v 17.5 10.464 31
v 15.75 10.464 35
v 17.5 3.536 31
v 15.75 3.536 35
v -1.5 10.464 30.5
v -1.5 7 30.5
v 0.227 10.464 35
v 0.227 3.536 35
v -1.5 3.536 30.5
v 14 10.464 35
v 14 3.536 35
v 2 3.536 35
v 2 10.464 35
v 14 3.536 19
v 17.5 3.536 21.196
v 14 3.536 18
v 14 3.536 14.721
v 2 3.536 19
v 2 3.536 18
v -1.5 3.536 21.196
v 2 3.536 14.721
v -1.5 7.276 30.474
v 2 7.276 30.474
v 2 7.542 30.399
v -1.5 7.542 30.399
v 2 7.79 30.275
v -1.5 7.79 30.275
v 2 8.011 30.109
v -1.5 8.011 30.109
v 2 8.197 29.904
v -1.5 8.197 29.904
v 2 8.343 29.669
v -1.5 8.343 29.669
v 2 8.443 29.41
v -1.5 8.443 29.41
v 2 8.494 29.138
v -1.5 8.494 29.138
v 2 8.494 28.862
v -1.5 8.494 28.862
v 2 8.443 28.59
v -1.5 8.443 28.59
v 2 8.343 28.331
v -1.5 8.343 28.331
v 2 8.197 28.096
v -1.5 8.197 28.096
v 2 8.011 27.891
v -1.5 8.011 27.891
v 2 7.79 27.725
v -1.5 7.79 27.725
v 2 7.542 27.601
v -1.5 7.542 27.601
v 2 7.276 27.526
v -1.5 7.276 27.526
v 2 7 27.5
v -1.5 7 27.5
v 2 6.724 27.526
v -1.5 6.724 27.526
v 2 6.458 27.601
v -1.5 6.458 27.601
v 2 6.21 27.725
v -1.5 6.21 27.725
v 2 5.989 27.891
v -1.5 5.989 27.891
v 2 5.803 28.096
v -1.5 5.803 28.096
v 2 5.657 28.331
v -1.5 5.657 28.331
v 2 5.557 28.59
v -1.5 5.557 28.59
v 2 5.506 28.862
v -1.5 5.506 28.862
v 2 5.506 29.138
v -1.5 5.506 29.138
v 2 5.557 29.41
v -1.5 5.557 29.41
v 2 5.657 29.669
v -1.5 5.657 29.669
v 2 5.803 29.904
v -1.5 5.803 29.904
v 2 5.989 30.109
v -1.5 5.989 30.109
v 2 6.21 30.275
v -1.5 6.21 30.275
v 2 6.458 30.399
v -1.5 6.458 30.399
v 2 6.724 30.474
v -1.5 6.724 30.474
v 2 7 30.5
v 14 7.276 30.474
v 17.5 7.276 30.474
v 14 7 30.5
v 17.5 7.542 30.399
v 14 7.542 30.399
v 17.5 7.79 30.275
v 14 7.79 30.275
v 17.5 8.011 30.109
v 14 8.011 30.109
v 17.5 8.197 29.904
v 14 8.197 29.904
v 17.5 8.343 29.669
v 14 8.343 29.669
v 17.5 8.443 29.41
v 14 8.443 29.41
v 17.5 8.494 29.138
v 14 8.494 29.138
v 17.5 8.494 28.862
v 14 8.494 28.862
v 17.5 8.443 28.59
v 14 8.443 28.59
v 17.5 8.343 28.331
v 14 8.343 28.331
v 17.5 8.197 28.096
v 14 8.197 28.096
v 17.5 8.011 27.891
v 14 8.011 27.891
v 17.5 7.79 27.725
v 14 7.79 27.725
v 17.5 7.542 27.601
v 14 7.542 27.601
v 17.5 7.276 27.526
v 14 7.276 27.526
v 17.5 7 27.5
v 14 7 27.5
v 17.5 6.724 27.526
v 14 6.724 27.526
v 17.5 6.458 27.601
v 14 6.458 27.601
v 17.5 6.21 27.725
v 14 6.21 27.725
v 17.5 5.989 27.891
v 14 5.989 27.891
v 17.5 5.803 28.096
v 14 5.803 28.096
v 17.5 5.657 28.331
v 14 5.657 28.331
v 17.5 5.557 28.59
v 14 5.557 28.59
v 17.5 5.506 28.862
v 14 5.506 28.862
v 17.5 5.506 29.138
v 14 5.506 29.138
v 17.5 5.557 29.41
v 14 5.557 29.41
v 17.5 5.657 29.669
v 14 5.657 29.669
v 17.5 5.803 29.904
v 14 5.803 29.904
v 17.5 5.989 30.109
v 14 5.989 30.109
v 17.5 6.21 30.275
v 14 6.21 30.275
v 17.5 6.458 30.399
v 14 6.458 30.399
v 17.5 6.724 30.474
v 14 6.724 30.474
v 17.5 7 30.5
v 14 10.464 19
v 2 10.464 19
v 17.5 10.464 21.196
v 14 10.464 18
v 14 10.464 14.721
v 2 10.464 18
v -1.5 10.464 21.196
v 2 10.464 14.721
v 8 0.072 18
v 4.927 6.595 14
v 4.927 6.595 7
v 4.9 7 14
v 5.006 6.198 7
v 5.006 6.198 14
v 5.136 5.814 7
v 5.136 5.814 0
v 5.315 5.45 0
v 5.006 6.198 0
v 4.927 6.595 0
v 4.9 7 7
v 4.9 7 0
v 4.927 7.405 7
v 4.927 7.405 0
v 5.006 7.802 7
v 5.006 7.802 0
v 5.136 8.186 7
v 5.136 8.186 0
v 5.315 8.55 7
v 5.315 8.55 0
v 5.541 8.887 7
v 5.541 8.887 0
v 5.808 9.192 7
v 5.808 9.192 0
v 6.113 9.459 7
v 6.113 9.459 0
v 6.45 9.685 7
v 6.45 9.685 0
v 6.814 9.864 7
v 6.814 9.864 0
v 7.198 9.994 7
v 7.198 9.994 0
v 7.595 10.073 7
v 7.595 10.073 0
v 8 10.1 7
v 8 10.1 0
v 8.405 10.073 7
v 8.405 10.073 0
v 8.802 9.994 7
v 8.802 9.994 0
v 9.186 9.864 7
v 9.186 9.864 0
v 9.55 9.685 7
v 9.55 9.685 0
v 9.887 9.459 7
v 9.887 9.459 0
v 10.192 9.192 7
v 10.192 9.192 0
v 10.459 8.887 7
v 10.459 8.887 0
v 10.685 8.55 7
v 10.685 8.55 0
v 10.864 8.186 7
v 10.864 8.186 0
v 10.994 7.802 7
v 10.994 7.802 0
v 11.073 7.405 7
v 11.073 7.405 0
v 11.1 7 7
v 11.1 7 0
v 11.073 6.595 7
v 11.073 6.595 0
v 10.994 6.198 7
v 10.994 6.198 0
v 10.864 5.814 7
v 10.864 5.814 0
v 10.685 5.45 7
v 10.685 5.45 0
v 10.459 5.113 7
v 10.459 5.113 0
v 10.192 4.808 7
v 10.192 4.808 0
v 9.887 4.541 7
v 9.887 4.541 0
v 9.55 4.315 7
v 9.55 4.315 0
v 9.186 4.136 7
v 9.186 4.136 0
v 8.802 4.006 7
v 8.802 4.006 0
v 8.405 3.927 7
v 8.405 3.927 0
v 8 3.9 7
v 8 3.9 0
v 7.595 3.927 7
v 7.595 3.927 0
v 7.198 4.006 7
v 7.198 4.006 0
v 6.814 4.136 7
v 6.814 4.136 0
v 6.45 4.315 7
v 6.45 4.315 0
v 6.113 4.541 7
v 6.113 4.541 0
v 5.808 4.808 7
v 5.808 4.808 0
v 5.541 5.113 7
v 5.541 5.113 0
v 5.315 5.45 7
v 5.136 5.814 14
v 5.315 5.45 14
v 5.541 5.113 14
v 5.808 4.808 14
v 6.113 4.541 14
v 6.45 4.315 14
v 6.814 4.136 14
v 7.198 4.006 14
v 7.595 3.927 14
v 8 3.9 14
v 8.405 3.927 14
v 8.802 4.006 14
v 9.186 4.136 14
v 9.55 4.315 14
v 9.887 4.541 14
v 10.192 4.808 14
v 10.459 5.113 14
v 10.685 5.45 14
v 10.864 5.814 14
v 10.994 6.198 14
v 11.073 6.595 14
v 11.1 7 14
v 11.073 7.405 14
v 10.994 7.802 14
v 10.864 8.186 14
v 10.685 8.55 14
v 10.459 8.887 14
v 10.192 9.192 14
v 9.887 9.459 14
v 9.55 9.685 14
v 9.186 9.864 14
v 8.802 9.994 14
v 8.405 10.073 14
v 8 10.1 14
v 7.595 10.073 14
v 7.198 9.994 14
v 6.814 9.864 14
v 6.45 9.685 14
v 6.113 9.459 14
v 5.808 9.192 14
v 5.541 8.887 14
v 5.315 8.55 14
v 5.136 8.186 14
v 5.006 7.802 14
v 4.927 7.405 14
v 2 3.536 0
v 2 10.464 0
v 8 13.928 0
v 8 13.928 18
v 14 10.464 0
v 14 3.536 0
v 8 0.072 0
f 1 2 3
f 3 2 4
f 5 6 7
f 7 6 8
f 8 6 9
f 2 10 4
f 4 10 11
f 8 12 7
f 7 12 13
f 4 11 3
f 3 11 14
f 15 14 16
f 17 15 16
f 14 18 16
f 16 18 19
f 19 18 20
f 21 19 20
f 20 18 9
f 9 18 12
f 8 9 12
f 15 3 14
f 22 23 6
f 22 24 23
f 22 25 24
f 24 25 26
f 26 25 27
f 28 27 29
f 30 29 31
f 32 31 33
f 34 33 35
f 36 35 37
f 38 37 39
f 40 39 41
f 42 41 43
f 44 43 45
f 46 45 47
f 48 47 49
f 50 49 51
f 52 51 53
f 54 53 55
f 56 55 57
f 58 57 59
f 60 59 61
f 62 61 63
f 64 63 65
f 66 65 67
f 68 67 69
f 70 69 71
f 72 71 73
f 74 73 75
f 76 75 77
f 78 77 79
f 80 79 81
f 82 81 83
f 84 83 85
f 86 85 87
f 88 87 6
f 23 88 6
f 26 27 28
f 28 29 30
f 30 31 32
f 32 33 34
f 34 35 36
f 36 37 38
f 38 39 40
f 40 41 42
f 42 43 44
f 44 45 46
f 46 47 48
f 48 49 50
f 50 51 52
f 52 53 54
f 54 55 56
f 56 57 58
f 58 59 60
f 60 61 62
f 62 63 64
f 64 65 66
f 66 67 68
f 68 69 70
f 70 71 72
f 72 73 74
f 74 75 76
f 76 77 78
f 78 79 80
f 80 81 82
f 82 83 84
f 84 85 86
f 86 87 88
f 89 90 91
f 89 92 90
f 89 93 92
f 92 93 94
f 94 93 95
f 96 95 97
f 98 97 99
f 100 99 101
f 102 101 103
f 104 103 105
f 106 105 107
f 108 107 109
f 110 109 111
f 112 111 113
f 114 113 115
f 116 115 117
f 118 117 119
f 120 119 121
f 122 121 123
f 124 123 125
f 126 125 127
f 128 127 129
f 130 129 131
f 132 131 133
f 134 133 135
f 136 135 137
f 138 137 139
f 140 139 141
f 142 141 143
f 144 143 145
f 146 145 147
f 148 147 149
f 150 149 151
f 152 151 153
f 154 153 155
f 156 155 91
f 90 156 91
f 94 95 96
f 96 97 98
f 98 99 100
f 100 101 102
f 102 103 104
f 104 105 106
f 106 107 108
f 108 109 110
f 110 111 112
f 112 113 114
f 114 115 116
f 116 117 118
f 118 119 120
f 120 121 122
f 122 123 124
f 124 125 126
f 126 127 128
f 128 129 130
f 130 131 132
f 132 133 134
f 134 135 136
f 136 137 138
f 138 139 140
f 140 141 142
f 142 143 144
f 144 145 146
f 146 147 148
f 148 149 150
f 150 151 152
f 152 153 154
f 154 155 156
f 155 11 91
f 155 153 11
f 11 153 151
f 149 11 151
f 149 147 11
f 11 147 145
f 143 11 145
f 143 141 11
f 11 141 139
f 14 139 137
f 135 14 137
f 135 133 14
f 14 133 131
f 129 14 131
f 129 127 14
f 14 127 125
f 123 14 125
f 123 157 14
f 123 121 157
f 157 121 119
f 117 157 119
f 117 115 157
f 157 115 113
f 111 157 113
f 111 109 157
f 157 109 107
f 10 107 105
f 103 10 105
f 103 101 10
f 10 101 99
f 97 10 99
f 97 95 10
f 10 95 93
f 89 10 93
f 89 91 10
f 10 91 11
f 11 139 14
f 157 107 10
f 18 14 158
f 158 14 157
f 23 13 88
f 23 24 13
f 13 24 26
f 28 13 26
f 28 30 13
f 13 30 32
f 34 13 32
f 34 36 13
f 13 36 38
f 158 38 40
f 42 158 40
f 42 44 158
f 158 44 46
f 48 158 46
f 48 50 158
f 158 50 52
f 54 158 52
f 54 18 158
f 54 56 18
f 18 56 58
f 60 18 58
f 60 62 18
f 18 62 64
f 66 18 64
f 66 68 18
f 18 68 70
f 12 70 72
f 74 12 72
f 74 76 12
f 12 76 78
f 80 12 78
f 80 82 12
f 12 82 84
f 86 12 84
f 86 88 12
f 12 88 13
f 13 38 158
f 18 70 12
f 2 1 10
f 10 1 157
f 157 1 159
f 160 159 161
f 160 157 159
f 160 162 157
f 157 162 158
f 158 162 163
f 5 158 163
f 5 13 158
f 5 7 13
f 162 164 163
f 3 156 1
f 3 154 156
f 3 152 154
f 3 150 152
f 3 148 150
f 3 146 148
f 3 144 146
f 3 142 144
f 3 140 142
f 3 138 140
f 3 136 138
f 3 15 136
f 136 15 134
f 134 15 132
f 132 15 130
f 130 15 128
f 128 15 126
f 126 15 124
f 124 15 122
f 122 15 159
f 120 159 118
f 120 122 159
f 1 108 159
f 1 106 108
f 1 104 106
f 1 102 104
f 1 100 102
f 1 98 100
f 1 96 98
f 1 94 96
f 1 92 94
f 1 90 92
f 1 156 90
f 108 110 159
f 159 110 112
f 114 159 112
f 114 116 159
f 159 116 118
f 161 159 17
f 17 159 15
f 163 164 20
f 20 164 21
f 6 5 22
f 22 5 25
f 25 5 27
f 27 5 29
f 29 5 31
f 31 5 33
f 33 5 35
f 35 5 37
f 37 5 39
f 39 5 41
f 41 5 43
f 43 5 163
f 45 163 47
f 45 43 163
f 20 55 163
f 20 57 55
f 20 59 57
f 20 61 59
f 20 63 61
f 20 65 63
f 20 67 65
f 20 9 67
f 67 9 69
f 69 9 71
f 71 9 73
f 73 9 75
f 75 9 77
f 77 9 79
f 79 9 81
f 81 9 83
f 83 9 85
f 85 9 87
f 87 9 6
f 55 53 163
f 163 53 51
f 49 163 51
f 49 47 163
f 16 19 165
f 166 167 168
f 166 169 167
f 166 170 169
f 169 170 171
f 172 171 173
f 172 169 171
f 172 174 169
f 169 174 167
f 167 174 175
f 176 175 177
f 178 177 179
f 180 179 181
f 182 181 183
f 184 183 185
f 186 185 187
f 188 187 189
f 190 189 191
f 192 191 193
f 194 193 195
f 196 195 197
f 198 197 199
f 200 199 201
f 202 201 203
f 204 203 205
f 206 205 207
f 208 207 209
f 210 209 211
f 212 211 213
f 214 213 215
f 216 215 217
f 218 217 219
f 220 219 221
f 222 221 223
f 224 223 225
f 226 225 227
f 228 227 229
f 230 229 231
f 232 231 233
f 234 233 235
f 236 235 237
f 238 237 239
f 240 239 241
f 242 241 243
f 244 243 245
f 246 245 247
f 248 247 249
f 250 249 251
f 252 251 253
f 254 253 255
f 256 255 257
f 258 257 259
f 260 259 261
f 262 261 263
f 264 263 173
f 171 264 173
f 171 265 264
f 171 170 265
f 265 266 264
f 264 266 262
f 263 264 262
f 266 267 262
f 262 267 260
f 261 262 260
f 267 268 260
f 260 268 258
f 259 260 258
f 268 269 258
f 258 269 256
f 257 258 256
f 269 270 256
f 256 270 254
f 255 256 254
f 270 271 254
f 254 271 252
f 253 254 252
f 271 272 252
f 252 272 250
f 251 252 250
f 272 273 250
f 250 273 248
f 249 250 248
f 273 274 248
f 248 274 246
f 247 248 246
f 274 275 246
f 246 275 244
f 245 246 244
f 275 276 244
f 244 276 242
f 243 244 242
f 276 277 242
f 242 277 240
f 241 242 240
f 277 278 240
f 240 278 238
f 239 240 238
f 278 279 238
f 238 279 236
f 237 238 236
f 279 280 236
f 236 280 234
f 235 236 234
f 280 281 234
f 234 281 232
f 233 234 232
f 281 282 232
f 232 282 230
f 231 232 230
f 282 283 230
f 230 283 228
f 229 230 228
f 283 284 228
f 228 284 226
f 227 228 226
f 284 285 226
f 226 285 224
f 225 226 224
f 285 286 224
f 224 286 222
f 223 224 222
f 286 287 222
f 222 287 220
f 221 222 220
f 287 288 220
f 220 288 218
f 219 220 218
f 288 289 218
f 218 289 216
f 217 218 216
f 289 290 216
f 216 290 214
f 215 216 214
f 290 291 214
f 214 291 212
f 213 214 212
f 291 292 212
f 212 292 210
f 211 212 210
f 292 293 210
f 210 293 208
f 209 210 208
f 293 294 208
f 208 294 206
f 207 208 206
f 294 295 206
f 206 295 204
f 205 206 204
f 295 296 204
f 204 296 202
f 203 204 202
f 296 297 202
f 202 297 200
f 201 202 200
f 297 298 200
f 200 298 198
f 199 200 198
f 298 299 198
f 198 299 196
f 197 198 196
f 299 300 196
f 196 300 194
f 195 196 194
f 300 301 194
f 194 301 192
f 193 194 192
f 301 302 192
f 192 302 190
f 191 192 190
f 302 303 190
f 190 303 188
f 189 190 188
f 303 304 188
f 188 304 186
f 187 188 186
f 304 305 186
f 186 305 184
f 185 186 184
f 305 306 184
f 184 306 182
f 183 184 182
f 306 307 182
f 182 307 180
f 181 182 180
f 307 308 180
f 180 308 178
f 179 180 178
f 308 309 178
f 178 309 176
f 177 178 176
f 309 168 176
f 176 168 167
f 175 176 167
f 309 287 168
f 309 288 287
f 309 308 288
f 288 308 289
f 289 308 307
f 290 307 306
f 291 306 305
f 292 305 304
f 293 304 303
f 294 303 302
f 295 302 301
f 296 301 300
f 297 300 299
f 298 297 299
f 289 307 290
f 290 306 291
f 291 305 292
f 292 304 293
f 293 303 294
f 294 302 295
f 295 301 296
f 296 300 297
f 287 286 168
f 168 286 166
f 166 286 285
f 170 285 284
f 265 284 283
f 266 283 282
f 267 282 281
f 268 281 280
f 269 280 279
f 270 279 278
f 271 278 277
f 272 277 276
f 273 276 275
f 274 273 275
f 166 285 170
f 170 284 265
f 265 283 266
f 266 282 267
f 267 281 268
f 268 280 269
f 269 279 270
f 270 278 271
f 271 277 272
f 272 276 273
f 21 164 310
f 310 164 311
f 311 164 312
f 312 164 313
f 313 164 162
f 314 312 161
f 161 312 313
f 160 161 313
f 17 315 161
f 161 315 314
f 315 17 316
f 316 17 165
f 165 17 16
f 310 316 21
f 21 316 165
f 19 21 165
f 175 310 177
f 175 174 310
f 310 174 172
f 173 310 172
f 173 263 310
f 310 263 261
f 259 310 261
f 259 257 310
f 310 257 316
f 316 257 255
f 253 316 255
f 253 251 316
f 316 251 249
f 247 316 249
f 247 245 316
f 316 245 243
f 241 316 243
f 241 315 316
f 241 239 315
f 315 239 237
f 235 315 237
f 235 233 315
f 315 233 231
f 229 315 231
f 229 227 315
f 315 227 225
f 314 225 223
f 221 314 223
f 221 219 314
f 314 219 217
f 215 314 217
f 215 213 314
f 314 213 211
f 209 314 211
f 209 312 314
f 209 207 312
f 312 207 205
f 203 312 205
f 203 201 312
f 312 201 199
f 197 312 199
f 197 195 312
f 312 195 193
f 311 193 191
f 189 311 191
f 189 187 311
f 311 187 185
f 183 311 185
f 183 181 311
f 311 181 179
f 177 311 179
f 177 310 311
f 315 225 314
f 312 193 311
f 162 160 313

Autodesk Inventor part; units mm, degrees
ref_plane "YZ Plane" through (0, 0, 0) normal (1, 0, 0) x (0, 1, 0)
ref_plane "XZ Plane" through (0, 0, 0) normal (0, 1, 0) x (-1, 0, 0)
ref_plane "XY Plane" through (0, 0, 0) normal (0, 0, 1) x (1, 0, 0)
sketch "Sketch1" plane through (0, 0, 0) normal (0, 0, 1) x (1, 0, 0)
  line L0 (8, 0.0718) -> (2, 3.5359)
  line L1 (2, 3.5359) -> (2, 10.4641)
  line L2 (2, 10.4641) -> (8, 13.9282)
  line L3 (8, 13.9282) -> (14, 10.4641)
  line L4 (14, 10.4641) -> (14, 3.5359)
  line L5 (14, 3.5359) -> (8, 0.0718)
  point P0 (0, 0)
  point P1 (8, 7)
  dimension "d1" = 12
extrude "Extrusion1" add sketch "Sketch1" along normal blind 18
sketch "Sketch2" plane through (0, 0, 0) normal (0, 0, -1) x (-1, 0, 0)
  circle A0 centre (-8, 7) radius 3.1
  point P0 (0, 0)
  dimension "d5" = 6.2
extrude "Extrusion2" cut sketch "Sketch2" against normal blind 14
sketch "Sketch3" plane through (0, 0, 18) normal (0, 0, 1) x (1, 0, 0)
  line L0 (14, 3.5359) -> (8, 0.0718) projected
  line L1 (14, 3.5359) -> (2, 3.5359)
  line L2 (2, 3.5359) -> (2, 10.4641)
  line L3 (2, 10.4641) -> (14, 10.4641)
  line L4 (14, 10.4641) -> (14, 3.5359)
  point P0 (0, 0)
  dimension "d12" = 6.9282
extrude "Extrusion3" add sketch "Sketch3" along normal blind 17
sketch "Sketch4" plane through (2, 10.4641, 18) normal (0, 1, 0) x (1, 0, 0)
  line L0 (12, 0) -> (12, -17) projected
  line L1 (12, -17) -> (15.5, -17)
  line L2 (0, 0) -> (0, -17) projected
  line L3 (12, 0) -> (12, -17)
  line L4 (0, -17) -> (-3.5, -17)
  line L5 (0, 0) -> (0, -17)
  line L6 (15.5, -17) -> (15.5, -3.1957)
  line L7 (-3.5, -3.1957) -> (0, 3.2792)
  line L8 (15.5, -3.1957) -> (12, 3.2792)
  line L9 (12, 18) -> (12, 0) projected
  line L10 (0, 0) -> (0, 3.2792)
  line L11 (12, 0) -> (12, 3)
  line L12 (-3.5, -17) -> (-3.5, -3.1957)
  point P0 (-2, 18)
  dimension "d10" = 3.5
  dimension "d11" = 3.5
extrude "Extrusion4" add sketch "Sketch4" against normal blind 6.9282
sketch "Sketch5" plane through (2, 10.4641, 18) normal (0, 1, 0) x (1, 0, 0)
  line L0 (15.5, -17) -> (15.5, -17) projected
  line L1 (0, -17) -> (12, -17)
  line L2 (12, -17) -> (12, -1)
  line L3 (12, -1) -> (0, -1)
  line L4 (0, -1) -> (0, -17)
  point P0 (-2, 18)
  point P1 (-3.5, -17)
extrude "Extrusion5" cut sketch "Sketch5" against normal through all
sketch "Sketch6" plane through (-1.5, 10.4641, 21.1957) normal (-1, 0, 0) x (0, 0, 1)
  line L0 (13.8043, 0) -> (13.8043, -6.9282) projected
  circle A0 centre (7.8043, -3.4641) radius 1.5
  point P0 (-21.1957, -10.4641)
  dimension "d18" = 3
extrude "Extrusion6" cut sketch "Sketch6" against normal through all
sketch "Sketch7" plane through (2, 3.5359, 18) normal (0, -1, 0) x (1, 0, 0)
  line L0 (-3.5, 12.5) -> (0, 12.5) projected
  line L1 (-3.5, 12.5) -> (-1.7726, 17)
  line L2 (0, 17) -> (-3.5, 17) projected
  line L3 (-3.5, 12.5) -> (1.3202, 12.5) construction
  line L4 (-3.5, 3.1957) -> (-3.5, 17) projected
  line L5 (-3.5, 12.5) -> (-3.5, 17)
  line L6 (-3.5, 17) -> (-1.7726, 17)
  line L7 (15.5, 12.9998) -> (19.7846, 12.9998) construction
  line L8 (15.5, 12.9998) -> (13.75, 17)
  line L9 (15.5, 17) -> (12, 17) projected
  line L10 (13.7726, 17) -> (15.5, 17)
  line L11 (15.5, 17) -> (15.5, 12.9998)
  line L12 (-3.5, 17) -> (-3.5, 12.5)
  line L13 (-3.5, 12.5) -> (-1.7726, 17)
  line L14 (-3.5, 17) -> (-3.5, 12.5)
  point P0 (-2, -18)
  dimension "d21" = 69
  dimension "d23" = 1.7274
  dimension "d24" = 1.7274
extrude "Extrusion7" cut sketch "Sketch7" against normal through all
properties part number "supportrodv2"
